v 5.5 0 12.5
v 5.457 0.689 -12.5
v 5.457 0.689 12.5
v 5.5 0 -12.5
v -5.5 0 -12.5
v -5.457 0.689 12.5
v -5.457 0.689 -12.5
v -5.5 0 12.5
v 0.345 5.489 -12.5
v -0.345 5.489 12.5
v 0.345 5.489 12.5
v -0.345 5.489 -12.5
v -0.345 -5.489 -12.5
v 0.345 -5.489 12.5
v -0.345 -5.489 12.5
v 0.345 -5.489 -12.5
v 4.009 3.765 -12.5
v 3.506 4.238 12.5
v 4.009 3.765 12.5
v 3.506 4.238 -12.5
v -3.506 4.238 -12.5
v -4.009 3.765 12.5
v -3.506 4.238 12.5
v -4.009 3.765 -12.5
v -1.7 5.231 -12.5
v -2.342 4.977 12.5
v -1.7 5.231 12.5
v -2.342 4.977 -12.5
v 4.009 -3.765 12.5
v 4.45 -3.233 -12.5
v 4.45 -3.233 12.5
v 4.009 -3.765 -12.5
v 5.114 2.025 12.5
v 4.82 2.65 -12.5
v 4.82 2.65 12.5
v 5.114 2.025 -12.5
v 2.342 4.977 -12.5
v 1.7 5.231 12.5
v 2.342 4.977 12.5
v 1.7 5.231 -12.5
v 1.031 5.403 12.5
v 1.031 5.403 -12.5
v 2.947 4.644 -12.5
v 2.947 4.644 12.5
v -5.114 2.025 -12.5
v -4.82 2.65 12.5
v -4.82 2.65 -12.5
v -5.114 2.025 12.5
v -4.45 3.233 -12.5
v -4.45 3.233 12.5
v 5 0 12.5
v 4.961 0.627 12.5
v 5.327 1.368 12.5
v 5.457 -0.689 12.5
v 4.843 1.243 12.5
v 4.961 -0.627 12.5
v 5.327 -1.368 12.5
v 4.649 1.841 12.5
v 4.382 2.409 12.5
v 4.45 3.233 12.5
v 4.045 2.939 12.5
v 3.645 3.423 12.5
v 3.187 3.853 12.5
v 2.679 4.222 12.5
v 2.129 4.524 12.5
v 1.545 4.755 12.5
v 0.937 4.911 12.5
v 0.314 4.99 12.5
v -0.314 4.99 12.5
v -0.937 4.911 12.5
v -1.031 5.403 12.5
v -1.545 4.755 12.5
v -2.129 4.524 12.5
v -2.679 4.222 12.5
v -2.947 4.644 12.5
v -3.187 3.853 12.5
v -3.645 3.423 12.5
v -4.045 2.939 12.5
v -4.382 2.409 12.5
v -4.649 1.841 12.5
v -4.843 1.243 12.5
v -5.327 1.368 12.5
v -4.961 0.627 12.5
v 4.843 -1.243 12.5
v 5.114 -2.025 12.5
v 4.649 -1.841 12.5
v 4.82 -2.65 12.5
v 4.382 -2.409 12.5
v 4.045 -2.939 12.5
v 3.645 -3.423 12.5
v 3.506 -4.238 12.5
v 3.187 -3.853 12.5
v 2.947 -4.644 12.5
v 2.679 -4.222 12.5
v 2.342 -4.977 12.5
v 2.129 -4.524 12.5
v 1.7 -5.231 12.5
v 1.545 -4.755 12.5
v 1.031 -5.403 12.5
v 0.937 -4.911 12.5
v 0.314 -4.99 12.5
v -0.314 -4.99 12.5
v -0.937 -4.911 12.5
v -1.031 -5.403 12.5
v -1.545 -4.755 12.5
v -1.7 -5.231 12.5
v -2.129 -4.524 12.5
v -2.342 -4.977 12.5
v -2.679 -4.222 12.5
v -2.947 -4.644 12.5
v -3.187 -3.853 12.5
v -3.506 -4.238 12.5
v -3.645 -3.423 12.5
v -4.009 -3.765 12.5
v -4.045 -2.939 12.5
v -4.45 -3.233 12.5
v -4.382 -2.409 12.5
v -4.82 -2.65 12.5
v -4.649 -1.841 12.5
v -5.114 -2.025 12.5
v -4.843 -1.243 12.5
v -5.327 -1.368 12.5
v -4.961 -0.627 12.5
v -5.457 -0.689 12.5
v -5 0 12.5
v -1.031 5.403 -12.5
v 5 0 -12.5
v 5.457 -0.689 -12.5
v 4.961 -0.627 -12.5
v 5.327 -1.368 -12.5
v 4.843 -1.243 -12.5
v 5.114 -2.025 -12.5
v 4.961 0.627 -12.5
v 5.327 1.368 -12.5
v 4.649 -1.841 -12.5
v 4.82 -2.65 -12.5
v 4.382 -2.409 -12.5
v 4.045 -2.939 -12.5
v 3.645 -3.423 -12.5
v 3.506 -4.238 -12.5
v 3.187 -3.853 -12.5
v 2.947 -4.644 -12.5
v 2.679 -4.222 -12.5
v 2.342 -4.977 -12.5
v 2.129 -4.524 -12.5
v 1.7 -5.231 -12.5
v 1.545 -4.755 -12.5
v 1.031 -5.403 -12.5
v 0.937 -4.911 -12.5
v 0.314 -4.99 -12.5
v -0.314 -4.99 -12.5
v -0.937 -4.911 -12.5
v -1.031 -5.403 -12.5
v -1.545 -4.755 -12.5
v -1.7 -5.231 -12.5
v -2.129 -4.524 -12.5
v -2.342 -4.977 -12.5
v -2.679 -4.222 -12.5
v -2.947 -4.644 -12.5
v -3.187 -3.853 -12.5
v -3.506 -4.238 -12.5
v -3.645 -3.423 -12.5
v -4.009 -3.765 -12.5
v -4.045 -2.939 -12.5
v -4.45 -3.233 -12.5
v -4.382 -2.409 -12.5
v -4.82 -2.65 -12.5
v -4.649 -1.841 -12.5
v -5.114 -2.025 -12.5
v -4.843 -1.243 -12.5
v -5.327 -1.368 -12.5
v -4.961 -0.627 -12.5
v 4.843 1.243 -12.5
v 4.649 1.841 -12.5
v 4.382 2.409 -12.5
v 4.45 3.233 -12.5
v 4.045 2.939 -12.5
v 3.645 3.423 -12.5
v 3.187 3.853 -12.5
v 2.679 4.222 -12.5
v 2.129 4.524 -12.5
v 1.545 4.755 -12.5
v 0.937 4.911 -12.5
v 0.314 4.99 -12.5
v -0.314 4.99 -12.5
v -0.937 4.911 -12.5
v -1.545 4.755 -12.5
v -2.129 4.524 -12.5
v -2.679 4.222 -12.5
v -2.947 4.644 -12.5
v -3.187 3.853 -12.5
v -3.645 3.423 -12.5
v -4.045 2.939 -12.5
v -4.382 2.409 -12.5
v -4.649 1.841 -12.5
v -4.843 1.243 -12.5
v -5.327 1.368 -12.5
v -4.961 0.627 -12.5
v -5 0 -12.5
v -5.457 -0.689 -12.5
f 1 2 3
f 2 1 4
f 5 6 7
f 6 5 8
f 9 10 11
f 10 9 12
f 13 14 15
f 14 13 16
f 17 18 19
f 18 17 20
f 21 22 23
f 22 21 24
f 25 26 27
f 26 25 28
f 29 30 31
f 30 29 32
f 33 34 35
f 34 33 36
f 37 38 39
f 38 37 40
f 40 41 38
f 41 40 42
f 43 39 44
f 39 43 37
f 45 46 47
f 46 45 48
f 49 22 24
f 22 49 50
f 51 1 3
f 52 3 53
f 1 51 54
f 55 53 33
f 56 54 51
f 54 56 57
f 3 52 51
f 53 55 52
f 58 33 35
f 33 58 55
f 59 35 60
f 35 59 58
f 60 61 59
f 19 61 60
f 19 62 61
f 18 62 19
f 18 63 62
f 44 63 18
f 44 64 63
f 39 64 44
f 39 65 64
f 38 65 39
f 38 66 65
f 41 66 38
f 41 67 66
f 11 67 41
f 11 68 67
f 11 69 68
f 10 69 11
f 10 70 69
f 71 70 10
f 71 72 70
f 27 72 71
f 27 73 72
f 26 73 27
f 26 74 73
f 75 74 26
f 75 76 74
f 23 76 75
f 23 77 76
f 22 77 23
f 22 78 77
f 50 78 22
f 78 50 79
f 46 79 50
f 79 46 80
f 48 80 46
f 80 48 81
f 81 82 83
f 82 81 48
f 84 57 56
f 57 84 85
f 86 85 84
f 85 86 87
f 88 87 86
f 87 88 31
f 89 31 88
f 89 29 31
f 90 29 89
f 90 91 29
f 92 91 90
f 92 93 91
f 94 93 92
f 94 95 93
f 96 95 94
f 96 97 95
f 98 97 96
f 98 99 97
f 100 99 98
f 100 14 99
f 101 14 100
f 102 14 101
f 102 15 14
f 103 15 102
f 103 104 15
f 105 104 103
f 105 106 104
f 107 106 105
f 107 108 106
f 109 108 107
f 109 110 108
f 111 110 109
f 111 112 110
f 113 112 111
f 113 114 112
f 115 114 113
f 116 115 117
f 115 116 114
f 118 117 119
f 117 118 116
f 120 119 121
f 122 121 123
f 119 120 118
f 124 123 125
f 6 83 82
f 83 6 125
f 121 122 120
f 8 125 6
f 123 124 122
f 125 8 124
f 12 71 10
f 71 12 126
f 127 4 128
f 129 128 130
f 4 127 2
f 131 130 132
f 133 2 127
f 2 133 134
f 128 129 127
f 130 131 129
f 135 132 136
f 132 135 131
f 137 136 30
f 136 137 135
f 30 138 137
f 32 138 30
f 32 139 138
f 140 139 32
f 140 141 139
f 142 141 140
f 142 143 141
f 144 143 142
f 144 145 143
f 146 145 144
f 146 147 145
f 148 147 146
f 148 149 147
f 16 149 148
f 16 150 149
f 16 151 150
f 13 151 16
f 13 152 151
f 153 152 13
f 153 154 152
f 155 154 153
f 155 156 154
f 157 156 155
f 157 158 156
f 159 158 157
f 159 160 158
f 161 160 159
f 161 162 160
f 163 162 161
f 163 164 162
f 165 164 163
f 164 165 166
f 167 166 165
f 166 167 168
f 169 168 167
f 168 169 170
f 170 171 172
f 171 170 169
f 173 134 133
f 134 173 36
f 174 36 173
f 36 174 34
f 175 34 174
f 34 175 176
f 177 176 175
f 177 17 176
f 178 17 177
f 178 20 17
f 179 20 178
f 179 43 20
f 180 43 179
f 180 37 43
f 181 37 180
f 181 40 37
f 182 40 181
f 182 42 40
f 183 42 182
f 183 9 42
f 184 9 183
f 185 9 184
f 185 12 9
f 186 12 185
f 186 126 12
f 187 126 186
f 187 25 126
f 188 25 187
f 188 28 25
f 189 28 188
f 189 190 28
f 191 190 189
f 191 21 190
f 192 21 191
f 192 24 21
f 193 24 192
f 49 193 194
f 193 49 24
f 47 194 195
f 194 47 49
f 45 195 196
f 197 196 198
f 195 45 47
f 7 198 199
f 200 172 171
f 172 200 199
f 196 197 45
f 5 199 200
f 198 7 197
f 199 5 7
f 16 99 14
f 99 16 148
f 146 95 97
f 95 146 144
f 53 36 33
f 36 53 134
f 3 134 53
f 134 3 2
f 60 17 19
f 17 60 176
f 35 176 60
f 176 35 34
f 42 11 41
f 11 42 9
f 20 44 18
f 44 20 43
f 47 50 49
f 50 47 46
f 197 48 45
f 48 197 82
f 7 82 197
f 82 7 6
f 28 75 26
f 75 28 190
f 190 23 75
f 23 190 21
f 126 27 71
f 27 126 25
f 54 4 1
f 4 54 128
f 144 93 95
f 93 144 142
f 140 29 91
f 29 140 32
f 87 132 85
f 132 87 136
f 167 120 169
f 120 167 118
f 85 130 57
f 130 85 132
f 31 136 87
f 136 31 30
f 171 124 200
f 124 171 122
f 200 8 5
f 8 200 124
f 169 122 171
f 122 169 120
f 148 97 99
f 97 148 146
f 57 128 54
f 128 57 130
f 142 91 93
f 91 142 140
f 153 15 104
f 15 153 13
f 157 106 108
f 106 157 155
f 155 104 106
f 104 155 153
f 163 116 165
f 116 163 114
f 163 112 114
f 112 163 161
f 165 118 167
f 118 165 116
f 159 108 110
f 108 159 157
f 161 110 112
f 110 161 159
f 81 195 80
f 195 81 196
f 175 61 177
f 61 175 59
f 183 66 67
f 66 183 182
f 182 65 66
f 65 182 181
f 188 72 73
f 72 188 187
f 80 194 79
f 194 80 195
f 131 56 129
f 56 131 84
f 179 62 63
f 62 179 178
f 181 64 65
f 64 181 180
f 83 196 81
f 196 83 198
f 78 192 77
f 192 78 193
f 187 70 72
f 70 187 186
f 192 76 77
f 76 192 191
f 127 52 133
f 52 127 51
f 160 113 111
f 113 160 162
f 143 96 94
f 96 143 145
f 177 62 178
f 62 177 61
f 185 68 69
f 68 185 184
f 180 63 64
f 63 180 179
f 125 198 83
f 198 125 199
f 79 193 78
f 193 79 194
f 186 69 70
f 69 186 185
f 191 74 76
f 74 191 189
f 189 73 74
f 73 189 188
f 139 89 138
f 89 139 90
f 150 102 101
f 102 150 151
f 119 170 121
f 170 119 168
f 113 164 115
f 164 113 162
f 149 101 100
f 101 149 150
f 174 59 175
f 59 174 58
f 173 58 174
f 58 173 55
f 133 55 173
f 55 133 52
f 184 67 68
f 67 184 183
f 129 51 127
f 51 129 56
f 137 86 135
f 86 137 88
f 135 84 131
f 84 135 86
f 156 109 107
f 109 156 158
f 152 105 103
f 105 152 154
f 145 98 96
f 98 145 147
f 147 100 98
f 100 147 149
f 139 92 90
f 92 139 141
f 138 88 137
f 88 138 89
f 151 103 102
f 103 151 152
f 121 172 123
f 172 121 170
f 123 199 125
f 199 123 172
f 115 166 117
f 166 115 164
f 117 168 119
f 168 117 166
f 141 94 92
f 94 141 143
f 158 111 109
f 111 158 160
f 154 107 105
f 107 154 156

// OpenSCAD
$fn = 50;


difference() {
	union() {
		translate(v = [0, 0, -12.5000000000]) {
			cylinder(h = 25, r = 5.5000000000);
		}
	}
	union() {
		translate(v = [0, 0, -100.0000000000]) {
			cylinder(h = 200, r = 5.0000000000);
		}
	}
}
